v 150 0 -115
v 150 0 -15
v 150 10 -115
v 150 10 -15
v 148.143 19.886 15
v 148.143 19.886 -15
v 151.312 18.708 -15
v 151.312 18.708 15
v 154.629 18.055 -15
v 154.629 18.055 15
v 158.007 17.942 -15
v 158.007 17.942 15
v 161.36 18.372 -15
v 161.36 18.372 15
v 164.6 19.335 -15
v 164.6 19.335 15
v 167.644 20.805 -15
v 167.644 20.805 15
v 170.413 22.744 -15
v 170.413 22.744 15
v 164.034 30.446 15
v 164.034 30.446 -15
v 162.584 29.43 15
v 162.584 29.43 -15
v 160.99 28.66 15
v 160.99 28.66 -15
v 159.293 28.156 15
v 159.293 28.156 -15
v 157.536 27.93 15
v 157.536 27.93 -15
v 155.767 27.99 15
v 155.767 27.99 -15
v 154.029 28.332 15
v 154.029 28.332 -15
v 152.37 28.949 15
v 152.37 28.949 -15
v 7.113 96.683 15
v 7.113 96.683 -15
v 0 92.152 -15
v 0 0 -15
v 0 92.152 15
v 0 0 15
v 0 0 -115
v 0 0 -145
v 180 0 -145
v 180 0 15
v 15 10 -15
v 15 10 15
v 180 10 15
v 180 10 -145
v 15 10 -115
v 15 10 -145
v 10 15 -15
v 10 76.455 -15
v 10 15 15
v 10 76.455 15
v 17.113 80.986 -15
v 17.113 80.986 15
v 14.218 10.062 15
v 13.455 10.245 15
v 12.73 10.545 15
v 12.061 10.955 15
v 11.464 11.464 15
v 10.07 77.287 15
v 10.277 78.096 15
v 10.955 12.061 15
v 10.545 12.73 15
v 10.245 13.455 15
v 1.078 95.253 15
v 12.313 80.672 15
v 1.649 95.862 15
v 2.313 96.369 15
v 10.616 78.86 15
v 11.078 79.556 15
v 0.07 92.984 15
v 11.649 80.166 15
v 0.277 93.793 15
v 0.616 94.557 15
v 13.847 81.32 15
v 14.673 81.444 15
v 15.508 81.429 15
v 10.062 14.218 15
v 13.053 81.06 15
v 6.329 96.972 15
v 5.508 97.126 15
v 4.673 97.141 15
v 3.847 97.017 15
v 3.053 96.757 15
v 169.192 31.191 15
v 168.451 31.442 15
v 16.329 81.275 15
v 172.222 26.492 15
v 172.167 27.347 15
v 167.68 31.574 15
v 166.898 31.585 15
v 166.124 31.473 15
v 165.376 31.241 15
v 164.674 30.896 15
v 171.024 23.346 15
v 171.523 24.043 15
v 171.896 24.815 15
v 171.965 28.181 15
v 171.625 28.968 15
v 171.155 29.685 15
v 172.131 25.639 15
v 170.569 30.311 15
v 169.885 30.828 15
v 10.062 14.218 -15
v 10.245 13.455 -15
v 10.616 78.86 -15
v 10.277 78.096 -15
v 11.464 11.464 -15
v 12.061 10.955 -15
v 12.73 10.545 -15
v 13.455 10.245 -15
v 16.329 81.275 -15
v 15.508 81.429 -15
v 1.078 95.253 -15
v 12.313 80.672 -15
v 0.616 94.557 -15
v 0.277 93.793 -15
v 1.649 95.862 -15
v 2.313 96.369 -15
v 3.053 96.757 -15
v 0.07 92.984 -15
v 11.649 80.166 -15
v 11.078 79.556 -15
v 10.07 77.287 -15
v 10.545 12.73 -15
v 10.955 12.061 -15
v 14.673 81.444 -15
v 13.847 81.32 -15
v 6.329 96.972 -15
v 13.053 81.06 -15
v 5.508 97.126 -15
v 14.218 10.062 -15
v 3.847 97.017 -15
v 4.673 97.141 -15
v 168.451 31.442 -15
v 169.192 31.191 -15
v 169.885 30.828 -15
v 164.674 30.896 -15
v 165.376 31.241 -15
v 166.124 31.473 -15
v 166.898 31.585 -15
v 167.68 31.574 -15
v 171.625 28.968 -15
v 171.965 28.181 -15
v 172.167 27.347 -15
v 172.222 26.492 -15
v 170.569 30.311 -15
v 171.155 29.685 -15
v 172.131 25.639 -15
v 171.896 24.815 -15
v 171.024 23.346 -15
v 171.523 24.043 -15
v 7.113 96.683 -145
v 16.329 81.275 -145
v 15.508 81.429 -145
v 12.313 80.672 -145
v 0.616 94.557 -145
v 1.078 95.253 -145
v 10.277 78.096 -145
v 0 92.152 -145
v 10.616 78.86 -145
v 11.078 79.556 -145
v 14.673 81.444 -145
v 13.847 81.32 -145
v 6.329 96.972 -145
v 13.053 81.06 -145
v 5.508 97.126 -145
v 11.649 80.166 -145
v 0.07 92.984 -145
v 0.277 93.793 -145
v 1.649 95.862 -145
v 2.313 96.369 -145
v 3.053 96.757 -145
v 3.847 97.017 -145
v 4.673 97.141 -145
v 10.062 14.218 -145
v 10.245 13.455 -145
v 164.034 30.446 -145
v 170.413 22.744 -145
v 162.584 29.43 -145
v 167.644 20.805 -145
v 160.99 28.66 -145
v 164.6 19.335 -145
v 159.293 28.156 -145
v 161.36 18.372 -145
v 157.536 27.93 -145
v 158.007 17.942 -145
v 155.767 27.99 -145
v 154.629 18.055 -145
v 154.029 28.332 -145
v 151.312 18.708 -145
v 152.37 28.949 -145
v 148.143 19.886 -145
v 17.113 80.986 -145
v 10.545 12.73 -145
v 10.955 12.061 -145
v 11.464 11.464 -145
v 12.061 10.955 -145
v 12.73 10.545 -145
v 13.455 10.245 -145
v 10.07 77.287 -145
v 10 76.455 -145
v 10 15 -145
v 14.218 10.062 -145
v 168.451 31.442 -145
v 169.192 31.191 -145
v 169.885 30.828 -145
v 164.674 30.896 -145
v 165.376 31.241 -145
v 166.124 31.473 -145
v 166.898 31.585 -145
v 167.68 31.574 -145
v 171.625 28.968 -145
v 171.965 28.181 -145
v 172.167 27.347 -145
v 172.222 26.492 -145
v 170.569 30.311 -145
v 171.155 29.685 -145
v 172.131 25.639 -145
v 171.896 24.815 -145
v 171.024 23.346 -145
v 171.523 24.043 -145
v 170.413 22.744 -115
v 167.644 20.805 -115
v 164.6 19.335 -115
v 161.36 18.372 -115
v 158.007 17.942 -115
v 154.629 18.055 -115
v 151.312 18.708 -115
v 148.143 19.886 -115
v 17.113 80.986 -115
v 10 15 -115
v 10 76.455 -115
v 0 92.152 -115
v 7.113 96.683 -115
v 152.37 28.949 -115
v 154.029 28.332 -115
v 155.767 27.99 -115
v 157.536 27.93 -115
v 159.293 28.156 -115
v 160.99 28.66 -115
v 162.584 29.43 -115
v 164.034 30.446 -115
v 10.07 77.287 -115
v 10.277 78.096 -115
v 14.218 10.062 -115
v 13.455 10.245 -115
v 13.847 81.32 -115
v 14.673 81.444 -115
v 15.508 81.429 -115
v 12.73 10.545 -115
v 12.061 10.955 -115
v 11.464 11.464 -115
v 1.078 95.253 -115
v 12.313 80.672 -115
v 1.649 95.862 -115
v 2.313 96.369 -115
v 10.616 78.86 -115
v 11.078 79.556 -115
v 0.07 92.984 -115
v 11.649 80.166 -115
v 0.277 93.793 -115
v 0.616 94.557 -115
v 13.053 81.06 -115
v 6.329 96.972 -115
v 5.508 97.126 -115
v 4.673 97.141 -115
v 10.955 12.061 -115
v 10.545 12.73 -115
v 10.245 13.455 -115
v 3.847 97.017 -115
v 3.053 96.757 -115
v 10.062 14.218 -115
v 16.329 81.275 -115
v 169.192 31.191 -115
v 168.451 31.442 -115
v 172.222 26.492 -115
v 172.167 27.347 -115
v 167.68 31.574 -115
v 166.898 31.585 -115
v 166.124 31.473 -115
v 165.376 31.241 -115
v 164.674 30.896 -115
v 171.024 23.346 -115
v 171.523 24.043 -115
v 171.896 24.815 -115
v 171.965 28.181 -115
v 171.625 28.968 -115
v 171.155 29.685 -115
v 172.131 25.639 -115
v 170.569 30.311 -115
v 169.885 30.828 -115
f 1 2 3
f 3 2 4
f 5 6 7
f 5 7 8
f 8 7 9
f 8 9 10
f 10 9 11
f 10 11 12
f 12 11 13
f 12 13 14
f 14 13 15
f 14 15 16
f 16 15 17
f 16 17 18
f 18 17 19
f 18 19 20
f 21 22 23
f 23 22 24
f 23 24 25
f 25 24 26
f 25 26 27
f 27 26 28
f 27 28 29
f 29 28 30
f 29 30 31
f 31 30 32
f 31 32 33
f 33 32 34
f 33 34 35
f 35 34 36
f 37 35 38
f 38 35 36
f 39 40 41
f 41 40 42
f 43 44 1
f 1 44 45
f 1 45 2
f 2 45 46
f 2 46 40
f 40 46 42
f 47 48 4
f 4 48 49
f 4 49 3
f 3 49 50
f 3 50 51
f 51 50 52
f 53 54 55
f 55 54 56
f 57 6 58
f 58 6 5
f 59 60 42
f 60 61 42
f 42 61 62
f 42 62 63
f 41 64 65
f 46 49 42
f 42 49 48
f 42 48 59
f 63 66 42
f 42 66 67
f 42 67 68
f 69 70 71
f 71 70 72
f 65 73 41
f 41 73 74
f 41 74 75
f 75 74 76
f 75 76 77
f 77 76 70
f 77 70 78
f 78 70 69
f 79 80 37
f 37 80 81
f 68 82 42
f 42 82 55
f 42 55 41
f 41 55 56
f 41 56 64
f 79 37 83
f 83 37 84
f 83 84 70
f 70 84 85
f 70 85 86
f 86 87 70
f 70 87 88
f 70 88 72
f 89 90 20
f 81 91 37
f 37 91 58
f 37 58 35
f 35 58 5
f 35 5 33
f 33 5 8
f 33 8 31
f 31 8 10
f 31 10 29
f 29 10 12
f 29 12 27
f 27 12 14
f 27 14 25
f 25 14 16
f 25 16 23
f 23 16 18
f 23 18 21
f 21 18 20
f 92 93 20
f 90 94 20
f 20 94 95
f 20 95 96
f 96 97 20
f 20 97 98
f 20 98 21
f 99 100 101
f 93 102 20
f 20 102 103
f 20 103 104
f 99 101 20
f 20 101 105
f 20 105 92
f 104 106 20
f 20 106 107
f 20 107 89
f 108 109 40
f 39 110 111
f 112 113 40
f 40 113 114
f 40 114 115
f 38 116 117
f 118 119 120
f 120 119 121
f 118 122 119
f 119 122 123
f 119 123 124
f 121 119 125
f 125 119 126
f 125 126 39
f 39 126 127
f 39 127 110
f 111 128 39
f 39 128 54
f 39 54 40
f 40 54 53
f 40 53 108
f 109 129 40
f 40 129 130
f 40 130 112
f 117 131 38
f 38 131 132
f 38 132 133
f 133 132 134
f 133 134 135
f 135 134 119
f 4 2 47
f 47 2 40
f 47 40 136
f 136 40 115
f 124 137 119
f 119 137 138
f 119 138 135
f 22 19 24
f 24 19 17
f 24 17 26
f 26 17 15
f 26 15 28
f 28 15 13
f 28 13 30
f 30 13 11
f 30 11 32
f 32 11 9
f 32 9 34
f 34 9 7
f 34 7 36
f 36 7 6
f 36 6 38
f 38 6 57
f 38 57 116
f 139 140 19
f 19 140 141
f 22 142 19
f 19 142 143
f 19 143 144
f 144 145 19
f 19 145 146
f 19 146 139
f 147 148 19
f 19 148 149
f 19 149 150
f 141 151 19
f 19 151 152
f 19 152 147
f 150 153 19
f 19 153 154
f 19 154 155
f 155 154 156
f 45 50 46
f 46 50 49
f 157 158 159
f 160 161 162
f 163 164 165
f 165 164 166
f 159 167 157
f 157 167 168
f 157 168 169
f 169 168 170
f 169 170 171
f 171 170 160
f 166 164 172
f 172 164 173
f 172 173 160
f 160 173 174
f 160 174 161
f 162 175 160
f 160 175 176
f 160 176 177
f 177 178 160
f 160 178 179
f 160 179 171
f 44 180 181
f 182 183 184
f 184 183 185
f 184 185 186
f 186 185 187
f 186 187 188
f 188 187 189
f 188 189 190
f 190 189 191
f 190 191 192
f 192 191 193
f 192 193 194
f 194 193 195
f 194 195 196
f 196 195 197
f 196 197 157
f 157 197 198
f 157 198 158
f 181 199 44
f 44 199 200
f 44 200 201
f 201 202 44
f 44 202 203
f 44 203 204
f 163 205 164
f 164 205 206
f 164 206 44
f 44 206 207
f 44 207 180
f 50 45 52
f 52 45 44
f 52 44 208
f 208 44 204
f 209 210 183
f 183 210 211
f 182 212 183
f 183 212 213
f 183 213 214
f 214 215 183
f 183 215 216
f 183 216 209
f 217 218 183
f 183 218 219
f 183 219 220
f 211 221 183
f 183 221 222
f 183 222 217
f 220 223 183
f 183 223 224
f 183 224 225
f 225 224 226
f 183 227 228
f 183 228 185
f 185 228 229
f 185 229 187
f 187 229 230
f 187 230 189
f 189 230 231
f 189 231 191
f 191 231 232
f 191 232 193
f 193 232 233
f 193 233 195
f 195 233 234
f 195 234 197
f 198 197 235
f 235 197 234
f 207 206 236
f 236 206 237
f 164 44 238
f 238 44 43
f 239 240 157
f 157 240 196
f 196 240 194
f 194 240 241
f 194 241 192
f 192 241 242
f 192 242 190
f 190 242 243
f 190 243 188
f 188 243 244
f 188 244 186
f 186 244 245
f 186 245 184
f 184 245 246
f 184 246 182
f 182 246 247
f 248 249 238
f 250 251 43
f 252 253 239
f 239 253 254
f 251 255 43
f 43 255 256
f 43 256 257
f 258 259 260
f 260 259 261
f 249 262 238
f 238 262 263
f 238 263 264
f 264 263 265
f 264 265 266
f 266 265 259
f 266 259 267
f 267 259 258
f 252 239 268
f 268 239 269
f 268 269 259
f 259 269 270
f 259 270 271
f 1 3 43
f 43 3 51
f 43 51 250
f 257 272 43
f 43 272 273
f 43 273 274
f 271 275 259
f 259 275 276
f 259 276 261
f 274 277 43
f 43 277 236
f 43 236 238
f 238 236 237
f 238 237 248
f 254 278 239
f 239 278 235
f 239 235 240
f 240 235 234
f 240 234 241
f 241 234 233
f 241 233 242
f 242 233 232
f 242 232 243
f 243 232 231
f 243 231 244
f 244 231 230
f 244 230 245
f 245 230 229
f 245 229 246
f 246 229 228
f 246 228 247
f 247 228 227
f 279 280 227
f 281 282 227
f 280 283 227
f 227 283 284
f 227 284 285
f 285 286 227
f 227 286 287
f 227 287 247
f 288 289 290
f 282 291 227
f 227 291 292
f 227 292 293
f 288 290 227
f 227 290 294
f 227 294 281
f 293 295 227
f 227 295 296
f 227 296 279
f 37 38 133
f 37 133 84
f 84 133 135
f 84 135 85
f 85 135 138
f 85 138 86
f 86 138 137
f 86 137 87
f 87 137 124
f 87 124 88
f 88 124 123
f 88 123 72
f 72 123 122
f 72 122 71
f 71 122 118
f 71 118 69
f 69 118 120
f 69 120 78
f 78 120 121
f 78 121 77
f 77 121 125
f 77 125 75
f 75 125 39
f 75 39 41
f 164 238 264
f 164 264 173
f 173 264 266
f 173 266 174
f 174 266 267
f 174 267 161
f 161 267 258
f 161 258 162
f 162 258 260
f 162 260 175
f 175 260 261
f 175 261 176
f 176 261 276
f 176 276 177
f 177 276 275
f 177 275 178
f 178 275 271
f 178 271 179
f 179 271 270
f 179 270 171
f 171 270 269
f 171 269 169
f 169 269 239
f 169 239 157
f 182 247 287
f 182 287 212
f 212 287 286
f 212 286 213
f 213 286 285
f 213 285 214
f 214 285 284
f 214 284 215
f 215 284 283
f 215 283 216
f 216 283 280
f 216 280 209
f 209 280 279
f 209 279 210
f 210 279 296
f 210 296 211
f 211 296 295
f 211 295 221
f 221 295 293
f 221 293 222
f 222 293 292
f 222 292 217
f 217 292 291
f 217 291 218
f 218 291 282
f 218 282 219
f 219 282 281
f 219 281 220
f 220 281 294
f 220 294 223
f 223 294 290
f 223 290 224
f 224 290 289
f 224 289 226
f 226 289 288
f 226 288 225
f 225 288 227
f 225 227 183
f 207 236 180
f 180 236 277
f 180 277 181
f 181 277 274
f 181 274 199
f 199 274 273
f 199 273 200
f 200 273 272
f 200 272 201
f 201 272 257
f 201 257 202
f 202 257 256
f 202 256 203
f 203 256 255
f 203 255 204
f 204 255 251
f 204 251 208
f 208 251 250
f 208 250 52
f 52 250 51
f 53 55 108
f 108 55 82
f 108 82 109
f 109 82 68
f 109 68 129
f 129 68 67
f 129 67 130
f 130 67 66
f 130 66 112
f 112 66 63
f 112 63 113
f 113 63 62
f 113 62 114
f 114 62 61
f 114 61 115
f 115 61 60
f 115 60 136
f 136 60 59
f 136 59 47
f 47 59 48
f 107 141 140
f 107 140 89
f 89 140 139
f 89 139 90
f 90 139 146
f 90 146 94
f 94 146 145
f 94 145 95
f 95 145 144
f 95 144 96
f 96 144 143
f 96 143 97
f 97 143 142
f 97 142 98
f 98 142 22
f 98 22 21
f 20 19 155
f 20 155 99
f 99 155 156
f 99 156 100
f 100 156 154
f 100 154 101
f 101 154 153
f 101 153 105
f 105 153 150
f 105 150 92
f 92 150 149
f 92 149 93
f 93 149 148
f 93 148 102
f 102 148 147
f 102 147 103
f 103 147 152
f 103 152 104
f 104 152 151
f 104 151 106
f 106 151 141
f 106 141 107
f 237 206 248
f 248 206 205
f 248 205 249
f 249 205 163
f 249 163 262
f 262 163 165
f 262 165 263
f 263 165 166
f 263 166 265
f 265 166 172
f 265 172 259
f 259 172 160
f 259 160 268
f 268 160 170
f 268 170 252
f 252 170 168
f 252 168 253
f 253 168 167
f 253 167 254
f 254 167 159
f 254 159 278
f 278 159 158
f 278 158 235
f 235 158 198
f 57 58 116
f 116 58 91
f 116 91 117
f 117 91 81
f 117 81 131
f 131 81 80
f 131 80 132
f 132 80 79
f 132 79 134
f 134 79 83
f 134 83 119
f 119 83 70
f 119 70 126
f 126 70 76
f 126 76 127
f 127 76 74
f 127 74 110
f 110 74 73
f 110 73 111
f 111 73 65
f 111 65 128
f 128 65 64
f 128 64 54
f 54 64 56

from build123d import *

# Parameters (mm, degrees)
EXTRUDE_THIN1_DEPTH = 15
SKETCH5_W           = 30
SKETCH5_H           = 10
BOSS_EXTRUDE2_DEPTH = 160
FILLET15_R          = 5


with BuildPart() as part:
    # Sketch2 → Extrude-Thin1 (new, symmetric)
    with BuildSketch(Plane.XY):
        with BuildLine():
            ThreePointArc((166.330603598, 33.062927418), (160.12783844, 28.366835098), (152.36969162, 28.948845927))
            Line((152.36969162, 28.948845927), (0, 100))
            Line((0, 100), (0, 0))
            Line((0, 0), (150, 0))
            Line((150, 0), (150, 10))
            Line((150, 10), (10, 10))
            Line((10, 10), (10, 84.303144229))
            Line((10, 84.303144229), (148.143509003, 19.885768057))
            ThreePointArc((148.143509003, 19.885768057), (162.954516568, 18.774656473), (174.796159143, 27.73992363))
            Line((174.796159143, 27.73992363), (166.330603598, 33.062927418))
        make_face()
    extrude_thin1 = extrude(amount=EXTRUDE_THIN1_DEPTH, both=True)

    # Sketch5 → Boss-Extrude2 (add)
    with BuildSketch(Plane.XY.offset(15)):
        with Locations((165, 5)):
            Rectangle(SKETCH5_W, SKETCH5_H)
    extrude(amount=-BOSS_EXTRUDE2_DEPTH)

    # Mirror1: Extrude-Thin1 across plane
    add(extrude_thin1.mirror(Plane.XY.offset(-65)))

    # Fillet15
    fillet15_edges = [part.edges().sort_by_distance(p)[0] for p in [
        (0, 100, 0),
        (0, 100, -130),
        (174.796159143, 27.73992363, -130),
        (166.330603598, 33.062927418, -130),
        (10, 10, -130),
        (10, 84.303144229, -130),
        (10, 84.303144229, 0),
        (10, 10, 0),
        (174.796159143, 27.73992363, 0),
        (166.330603598, 33.062927418, 0),
    ]]
    fillet(fillet15_edges, radius=FILLET15_R - 0.0001)  # a hair under: the kernel refuses the full size


solid = part.part
